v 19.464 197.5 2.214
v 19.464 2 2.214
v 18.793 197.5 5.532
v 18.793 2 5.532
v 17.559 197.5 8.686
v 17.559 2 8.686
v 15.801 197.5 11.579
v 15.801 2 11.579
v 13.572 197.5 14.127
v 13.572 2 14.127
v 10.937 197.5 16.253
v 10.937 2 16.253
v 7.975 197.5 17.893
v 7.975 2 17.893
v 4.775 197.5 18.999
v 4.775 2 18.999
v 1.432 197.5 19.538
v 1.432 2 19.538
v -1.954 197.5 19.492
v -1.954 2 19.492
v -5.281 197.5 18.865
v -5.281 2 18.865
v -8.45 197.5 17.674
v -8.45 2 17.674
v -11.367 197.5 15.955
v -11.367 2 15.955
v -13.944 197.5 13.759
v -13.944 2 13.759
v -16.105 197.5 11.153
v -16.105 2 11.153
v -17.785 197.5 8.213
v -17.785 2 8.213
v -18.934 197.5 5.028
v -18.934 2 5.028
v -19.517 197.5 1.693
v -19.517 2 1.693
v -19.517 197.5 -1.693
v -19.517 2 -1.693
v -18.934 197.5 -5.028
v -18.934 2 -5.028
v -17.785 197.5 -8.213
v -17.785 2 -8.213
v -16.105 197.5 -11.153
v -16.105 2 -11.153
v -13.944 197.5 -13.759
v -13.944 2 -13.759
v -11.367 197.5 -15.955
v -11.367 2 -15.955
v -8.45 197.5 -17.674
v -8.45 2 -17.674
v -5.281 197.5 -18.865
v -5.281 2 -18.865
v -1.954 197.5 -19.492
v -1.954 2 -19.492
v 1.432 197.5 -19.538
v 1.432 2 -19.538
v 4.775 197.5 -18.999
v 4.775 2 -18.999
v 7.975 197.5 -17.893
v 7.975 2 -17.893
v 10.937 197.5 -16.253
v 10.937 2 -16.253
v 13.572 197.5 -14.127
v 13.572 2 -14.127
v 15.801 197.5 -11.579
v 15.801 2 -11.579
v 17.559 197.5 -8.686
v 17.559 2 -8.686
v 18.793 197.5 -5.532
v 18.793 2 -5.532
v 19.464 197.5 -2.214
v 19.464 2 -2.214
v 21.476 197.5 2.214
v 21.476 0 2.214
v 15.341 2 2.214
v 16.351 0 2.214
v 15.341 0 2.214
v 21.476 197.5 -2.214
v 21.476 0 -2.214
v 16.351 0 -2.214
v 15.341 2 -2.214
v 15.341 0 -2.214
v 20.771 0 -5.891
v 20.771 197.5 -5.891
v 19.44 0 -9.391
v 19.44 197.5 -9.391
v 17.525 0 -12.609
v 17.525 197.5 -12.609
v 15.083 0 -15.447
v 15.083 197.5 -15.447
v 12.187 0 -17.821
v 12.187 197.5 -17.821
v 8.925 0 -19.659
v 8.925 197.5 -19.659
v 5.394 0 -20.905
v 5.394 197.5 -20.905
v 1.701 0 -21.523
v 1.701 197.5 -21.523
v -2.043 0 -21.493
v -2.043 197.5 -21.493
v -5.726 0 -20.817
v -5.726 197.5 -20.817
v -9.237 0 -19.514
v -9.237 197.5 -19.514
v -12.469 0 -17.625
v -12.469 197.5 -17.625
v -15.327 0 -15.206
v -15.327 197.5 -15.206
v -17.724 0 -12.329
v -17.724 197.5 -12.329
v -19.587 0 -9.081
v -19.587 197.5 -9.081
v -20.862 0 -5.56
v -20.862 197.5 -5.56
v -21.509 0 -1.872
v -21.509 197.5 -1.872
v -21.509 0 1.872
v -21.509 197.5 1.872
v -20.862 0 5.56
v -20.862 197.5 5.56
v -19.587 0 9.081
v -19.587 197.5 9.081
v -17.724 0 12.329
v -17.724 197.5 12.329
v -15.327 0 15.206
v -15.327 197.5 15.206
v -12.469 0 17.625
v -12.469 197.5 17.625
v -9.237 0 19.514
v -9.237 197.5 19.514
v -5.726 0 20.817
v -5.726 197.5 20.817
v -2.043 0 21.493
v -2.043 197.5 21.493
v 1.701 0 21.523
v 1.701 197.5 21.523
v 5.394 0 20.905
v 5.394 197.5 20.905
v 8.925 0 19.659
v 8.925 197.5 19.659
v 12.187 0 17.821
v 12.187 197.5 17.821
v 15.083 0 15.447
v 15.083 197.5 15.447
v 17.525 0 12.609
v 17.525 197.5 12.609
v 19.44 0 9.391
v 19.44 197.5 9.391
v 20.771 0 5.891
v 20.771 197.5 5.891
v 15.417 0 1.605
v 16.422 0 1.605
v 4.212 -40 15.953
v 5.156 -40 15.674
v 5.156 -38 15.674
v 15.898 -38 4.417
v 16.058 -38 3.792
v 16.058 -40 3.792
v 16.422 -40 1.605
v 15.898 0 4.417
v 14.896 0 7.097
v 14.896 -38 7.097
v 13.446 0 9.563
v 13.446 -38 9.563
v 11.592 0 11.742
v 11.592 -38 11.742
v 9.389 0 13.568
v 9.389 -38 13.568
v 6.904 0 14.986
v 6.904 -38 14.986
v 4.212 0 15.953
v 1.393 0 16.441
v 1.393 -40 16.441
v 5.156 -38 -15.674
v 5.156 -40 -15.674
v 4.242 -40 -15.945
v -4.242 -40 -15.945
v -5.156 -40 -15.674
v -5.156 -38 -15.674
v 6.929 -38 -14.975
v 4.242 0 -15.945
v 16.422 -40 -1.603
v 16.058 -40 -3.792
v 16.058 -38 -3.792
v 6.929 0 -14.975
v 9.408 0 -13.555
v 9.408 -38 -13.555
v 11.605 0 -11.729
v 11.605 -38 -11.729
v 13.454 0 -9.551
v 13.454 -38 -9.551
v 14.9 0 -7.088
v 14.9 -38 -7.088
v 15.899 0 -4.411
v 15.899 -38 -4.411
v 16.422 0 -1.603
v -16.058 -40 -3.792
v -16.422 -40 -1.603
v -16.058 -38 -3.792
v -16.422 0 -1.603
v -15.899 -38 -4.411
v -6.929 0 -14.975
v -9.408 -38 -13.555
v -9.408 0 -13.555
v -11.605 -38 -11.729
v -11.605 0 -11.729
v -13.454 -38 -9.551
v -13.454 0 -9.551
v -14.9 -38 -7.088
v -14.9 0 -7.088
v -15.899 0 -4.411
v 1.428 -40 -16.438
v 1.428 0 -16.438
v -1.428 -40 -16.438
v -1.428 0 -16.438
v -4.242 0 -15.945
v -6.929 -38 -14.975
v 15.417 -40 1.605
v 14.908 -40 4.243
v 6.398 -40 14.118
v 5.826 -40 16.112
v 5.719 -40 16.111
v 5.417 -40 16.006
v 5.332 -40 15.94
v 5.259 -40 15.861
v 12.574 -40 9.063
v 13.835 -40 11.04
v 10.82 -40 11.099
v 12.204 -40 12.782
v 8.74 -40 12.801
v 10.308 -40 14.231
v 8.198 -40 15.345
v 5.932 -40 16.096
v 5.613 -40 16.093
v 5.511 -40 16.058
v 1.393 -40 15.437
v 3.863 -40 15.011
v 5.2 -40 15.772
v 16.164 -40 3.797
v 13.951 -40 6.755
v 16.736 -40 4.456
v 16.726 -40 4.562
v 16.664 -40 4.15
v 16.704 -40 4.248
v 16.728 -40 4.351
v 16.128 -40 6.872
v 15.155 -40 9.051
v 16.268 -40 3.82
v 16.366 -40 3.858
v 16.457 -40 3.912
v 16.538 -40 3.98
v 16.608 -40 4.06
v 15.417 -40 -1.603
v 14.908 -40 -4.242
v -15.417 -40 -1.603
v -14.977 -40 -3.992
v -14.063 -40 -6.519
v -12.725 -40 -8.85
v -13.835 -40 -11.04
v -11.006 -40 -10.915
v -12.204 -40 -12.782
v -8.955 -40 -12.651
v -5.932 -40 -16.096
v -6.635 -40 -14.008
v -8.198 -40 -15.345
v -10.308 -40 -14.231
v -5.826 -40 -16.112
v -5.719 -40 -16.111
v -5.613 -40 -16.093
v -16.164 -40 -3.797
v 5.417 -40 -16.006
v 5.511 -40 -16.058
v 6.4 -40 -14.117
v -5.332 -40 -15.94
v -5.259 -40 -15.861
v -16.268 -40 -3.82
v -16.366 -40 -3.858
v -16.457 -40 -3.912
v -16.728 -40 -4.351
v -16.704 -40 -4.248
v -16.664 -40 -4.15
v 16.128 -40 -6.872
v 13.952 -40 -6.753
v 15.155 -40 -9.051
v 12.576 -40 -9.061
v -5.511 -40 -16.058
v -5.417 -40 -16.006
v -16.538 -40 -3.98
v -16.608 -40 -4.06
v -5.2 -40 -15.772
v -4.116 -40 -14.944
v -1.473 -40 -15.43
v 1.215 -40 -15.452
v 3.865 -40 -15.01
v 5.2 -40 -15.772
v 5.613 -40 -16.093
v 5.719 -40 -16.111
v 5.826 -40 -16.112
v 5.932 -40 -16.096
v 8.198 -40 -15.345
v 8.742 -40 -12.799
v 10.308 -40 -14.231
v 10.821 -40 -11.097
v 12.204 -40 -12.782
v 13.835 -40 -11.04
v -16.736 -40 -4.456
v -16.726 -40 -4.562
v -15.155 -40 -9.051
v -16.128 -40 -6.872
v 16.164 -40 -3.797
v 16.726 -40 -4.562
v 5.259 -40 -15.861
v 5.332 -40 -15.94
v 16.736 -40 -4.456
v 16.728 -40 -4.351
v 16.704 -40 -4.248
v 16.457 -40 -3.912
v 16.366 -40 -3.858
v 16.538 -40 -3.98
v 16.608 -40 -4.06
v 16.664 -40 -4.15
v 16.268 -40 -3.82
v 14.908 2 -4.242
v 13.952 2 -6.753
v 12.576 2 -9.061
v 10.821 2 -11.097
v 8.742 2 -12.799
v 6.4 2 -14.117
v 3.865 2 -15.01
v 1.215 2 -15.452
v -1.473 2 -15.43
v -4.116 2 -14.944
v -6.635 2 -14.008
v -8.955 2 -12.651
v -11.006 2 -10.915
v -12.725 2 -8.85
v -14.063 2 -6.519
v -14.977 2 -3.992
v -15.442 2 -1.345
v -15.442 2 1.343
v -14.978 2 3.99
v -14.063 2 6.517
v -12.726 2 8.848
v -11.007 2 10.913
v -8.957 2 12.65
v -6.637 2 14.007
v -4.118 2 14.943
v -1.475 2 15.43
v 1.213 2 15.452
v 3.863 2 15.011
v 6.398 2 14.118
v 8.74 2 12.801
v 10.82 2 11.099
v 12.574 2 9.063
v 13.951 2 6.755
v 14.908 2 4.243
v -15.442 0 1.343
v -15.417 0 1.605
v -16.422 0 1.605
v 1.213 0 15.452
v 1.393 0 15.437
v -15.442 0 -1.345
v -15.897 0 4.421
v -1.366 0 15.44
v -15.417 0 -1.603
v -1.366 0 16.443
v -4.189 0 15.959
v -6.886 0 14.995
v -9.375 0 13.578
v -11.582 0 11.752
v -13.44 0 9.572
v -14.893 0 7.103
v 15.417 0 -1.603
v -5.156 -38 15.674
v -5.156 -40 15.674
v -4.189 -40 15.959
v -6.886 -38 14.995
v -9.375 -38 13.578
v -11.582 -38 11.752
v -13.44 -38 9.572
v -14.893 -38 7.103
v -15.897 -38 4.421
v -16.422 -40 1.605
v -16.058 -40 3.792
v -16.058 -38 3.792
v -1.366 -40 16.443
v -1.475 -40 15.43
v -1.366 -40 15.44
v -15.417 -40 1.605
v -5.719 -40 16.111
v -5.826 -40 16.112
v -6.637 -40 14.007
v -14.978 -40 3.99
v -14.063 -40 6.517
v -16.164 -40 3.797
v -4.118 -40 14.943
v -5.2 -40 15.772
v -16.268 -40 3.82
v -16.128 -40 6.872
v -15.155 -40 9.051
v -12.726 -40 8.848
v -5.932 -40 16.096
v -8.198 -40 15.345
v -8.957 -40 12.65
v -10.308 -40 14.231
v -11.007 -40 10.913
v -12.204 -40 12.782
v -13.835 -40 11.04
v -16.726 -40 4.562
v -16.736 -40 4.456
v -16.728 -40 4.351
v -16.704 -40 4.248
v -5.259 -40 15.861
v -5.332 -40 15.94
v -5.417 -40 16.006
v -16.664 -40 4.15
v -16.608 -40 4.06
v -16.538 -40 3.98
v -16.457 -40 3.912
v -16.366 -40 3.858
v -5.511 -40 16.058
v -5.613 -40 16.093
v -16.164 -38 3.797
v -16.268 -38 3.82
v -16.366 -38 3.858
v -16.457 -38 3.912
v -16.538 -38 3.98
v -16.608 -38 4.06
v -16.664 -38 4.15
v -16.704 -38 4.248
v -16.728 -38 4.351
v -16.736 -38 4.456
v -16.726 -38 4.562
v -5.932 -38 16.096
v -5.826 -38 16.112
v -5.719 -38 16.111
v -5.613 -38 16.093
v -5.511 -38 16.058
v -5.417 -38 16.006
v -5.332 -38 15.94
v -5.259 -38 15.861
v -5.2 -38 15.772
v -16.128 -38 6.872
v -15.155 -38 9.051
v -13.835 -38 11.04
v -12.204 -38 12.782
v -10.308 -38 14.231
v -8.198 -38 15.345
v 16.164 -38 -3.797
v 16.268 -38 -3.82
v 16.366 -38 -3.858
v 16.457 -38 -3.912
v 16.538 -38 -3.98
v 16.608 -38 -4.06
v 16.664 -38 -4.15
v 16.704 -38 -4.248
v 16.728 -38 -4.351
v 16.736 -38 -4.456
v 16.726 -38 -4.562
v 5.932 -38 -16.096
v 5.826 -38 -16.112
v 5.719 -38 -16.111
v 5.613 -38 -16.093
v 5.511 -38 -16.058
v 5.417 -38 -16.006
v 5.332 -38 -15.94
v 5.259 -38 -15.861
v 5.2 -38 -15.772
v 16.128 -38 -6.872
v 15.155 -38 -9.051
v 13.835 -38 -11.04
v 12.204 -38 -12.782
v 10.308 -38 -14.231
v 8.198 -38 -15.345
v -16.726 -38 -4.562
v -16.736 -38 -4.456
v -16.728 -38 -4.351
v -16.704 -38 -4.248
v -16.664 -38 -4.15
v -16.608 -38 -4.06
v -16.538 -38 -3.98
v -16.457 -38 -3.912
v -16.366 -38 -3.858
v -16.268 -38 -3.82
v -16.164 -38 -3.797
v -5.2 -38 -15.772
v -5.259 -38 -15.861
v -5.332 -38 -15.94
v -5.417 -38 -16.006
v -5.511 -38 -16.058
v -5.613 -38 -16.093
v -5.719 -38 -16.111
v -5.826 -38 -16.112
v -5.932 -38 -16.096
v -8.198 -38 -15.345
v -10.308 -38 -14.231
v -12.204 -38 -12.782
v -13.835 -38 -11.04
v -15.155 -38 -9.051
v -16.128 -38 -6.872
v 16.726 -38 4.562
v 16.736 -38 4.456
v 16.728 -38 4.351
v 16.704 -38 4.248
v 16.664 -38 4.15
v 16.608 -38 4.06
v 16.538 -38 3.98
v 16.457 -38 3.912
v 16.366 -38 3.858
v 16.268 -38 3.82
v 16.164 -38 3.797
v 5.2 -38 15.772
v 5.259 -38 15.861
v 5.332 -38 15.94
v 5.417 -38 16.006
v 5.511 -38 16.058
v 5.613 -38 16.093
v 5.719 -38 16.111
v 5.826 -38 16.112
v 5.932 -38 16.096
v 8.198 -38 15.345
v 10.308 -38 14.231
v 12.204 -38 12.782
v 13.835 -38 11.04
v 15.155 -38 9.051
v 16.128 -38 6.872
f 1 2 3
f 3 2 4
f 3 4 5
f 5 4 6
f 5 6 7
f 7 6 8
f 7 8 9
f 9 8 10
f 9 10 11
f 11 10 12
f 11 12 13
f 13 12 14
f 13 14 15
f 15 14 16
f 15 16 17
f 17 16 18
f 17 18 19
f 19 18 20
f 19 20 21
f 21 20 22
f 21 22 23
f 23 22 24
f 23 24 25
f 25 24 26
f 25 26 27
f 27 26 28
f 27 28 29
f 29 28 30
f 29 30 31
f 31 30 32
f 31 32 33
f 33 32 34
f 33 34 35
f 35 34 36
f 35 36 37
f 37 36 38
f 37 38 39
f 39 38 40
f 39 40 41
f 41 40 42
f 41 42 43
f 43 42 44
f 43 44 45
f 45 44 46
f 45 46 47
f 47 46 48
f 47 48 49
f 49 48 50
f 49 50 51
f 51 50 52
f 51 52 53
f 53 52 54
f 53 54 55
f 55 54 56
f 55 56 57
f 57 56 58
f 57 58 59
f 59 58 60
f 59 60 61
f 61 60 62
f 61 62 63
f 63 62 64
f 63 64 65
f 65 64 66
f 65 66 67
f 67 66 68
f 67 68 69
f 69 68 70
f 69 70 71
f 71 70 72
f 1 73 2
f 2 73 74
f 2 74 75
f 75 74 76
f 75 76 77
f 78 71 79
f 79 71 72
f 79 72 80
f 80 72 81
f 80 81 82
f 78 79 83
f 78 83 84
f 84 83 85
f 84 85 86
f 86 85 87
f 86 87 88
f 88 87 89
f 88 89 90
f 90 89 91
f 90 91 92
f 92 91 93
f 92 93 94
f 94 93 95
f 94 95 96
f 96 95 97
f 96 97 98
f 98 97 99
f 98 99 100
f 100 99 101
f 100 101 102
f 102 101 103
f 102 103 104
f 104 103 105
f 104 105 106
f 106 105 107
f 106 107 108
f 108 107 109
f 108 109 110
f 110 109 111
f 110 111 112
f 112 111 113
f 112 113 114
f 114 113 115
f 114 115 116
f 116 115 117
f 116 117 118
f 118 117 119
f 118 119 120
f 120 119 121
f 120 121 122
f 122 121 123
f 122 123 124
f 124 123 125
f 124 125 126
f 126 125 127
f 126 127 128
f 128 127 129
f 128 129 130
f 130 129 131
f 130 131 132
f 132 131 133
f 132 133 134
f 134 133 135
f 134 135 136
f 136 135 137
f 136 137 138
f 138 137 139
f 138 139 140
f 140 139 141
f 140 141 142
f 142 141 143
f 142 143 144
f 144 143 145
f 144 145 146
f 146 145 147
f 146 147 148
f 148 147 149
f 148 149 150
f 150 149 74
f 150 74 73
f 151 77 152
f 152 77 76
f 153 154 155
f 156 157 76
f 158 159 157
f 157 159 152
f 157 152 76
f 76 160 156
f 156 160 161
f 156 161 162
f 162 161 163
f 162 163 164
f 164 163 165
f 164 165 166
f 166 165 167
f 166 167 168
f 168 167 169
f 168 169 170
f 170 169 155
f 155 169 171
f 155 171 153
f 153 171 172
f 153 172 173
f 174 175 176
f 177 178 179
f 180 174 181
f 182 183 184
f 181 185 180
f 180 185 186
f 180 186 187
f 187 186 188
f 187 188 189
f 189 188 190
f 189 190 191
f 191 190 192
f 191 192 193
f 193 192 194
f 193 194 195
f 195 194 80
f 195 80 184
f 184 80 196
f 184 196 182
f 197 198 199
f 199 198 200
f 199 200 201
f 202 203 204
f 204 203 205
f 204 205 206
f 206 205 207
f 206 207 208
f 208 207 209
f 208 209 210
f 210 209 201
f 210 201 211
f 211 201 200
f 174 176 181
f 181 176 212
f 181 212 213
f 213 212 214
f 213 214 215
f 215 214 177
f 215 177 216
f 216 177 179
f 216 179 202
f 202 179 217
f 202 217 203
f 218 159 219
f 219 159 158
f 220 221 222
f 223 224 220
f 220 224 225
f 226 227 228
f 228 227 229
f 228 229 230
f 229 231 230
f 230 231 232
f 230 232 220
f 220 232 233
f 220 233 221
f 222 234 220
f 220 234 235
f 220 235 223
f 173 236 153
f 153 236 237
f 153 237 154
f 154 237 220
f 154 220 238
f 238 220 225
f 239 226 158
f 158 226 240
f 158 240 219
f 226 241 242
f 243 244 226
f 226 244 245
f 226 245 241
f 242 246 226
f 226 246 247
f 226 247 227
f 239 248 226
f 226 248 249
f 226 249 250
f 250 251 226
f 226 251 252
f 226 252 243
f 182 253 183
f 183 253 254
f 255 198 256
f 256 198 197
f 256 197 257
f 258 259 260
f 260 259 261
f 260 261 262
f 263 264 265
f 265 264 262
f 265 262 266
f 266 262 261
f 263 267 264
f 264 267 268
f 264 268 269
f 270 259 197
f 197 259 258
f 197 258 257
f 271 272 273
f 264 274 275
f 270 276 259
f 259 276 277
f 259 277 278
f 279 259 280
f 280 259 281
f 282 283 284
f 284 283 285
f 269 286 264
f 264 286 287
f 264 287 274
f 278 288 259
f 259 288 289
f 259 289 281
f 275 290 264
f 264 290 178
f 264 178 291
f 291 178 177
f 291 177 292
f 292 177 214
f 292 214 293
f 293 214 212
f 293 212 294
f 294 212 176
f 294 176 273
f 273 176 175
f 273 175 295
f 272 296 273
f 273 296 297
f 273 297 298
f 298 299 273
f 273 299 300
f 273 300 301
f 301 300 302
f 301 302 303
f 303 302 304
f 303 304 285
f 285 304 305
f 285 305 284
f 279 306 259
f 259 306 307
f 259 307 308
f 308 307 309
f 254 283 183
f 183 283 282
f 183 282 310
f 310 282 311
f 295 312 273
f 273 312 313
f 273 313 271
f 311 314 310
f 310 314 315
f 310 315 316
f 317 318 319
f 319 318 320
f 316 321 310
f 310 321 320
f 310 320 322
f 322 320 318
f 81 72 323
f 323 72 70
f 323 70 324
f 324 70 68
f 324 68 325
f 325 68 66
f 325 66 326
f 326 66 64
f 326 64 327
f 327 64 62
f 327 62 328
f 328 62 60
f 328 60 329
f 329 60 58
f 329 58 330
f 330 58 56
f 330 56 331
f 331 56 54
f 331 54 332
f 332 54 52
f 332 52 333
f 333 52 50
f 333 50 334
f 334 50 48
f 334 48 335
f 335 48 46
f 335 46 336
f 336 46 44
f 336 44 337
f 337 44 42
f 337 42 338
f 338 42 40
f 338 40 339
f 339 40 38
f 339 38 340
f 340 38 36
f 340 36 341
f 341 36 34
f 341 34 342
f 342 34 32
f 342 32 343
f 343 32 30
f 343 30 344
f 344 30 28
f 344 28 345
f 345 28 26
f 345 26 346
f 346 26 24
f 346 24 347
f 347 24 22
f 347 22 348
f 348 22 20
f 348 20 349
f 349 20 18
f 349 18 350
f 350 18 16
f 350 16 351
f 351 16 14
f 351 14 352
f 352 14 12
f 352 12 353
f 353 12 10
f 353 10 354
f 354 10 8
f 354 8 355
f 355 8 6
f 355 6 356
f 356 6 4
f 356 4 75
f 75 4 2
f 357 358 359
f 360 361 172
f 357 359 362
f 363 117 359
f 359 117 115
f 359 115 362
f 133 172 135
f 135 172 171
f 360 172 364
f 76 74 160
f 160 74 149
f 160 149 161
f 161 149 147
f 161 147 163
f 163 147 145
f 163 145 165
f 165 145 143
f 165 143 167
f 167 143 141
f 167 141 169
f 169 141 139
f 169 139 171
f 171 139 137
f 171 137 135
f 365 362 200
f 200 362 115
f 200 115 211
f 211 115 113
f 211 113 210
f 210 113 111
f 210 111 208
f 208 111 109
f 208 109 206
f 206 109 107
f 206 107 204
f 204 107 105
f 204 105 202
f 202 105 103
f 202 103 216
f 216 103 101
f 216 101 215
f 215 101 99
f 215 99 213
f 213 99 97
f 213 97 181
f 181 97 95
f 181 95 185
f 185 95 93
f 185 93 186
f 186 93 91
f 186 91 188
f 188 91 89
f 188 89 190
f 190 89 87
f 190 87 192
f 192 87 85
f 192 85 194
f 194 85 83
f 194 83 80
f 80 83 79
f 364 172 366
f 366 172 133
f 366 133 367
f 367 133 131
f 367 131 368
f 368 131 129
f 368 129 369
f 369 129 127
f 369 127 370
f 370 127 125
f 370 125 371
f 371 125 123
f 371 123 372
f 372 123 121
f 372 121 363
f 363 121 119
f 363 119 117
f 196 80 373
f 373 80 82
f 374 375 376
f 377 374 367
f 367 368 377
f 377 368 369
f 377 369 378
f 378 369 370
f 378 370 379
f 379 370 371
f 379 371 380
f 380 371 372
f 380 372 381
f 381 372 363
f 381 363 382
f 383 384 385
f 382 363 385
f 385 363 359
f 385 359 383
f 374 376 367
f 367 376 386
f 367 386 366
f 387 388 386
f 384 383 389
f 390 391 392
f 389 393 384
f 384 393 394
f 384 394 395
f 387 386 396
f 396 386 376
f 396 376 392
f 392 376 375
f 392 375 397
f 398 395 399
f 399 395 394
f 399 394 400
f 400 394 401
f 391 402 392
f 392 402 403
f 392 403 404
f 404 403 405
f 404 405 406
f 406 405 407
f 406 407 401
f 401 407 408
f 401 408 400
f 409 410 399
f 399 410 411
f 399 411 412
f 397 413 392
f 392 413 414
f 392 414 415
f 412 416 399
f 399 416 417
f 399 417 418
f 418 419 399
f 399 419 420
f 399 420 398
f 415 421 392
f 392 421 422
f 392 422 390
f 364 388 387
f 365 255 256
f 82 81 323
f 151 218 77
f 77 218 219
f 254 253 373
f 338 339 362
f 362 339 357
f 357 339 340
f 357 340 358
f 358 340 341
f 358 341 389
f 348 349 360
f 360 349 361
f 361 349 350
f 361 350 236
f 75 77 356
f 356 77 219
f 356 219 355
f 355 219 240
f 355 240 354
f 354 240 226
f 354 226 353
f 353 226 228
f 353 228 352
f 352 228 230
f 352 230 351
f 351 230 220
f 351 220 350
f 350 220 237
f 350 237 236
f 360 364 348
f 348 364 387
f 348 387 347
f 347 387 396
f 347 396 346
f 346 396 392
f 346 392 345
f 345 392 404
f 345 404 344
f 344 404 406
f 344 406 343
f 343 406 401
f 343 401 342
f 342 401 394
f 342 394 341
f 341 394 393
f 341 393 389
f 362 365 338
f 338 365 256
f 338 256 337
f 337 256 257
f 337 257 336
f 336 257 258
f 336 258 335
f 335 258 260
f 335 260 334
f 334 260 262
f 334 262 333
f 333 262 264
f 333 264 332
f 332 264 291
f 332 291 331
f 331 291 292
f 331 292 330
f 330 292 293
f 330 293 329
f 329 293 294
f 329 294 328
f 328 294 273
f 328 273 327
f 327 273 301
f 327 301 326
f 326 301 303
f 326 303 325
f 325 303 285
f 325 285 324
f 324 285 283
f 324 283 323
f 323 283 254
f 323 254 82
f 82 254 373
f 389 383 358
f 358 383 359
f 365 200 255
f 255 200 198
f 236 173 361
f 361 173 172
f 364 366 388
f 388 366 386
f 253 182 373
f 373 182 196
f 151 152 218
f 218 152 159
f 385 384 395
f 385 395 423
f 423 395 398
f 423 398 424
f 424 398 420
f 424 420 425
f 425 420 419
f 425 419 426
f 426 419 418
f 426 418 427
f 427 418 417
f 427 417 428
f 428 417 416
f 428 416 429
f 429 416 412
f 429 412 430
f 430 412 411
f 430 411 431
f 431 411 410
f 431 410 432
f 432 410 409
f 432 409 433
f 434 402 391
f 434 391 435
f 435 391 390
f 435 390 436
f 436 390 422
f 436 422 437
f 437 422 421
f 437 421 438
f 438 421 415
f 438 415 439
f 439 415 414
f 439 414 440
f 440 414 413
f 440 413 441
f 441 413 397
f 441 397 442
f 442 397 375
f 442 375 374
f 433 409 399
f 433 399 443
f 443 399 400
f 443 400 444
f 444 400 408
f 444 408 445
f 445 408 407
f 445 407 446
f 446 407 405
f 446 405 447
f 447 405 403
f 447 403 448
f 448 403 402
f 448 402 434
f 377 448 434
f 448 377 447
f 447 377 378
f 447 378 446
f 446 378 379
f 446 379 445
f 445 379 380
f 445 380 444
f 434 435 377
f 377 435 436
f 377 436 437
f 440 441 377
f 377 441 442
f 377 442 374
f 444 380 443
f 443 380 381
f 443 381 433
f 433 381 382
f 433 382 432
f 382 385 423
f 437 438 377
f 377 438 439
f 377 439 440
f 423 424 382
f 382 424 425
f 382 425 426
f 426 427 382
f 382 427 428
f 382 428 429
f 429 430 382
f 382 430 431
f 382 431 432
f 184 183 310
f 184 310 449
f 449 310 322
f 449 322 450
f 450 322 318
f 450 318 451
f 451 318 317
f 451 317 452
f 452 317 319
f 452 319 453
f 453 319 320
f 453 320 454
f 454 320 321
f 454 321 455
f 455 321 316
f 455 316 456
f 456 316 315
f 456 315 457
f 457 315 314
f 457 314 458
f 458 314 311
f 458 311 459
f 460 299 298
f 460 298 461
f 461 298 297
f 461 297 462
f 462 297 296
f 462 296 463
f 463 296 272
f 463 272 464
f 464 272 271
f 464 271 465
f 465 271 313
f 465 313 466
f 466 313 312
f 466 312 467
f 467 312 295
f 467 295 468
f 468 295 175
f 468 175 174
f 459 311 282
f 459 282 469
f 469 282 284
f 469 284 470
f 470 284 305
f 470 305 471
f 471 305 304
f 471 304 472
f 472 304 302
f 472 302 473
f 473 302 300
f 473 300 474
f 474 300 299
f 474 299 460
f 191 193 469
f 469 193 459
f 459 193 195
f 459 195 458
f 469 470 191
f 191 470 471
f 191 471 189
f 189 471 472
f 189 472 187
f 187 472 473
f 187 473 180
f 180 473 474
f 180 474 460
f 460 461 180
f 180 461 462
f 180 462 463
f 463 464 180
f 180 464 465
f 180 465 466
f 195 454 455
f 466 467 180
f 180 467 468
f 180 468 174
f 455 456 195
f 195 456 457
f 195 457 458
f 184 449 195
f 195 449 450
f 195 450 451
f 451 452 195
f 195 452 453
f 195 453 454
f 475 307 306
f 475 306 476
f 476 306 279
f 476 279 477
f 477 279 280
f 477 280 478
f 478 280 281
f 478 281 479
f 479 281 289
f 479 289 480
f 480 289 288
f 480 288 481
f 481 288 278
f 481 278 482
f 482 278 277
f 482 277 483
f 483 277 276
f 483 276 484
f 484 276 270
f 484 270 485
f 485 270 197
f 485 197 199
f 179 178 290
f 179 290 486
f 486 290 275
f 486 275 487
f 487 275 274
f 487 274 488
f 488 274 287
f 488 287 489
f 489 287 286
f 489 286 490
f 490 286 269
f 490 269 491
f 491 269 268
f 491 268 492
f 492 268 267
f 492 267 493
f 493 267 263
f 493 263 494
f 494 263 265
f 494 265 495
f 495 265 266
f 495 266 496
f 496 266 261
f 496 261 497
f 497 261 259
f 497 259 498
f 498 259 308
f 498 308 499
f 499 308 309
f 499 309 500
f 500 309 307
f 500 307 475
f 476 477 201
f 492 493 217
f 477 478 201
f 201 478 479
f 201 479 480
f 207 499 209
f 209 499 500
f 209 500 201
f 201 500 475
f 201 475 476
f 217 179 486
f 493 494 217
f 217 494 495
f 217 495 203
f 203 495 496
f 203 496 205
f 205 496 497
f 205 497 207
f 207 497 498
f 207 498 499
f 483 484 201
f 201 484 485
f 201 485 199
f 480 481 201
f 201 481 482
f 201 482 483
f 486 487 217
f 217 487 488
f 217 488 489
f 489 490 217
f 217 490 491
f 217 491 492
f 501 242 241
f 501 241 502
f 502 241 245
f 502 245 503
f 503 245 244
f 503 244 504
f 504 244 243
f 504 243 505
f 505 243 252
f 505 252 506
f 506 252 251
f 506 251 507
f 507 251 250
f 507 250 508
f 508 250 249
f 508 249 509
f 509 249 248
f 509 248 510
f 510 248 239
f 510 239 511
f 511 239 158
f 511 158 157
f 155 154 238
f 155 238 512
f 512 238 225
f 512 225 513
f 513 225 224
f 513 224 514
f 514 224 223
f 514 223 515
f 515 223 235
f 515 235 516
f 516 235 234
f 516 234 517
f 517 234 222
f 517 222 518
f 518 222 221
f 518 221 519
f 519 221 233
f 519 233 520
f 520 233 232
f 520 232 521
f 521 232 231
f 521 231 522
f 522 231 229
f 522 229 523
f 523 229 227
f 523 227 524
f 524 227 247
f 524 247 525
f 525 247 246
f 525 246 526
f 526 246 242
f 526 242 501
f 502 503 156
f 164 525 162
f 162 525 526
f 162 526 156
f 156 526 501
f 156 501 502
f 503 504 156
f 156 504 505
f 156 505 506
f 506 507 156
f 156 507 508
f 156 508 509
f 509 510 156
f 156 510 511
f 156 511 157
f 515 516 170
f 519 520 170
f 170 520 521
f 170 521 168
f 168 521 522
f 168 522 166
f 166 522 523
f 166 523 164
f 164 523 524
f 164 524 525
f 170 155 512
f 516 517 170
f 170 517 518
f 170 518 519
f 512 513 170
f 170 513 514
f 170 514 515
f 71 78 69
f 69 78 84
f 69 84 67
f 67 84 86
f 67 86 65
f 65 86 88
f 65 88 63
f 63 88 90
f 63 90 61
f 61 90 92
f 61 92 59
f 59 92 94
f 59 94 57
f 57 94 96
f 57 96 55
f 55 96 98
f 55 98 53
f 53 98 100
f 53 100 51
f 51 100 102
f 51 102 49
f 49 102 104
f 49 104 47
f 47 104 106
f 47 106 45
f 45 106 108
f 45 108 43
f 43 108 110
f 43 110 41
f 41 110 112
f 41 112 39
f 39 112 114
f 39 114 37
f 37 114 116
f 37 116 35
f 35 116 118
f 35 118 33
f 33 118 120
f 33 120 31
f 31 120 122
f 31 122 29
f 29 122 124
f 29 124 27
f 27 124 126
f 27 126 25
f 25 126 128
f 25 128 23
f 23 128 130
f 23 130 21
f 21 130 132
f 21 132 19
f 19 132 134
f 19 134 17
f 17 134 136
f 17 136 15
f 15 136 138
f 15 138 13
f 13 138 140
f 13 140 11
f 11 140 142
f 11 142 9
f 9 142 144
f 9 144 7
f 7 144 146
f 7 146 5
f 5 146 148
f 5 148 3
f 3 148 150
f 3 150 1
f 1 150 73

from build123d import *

# Parameters (mm, degrees)
SKETCH1_R           = 21.59
BOSS_EXTRUDE1_DEPTH = 200
SHELL1_T            = 2
CUT_EXTRUDE1_START  = 20
CUT_EXTRUDE1_DEPTH  = 5
SKETCH4_R           = 16.5
BOSS_EXTRUDE2_DEPTH = 40
SKETCH7_R           = 15.5
CUT_EXTRUDE4_DEPTH  = 62
SKETCH8_W           = 2.785852998
SKETCH8_H           = 5.87658936
SKETCH8_W_2         = 8.878050256
SKETCH8_H_2         = 3.207420782
SKETCH8_W_3         = 2.758641046
SKETCH8_H_3         = 8.505589864
CUT_EXTRUDE5_DEPTH  = 203.317216766
BOSS_EXTRUDE4_DEPTH = 2
SKETCH10_R          = 21.59
CUT_EXTRUDE7_DEPTH  = 2.5


with BuildPart() as part:
    # Sketch1 → Boss-Extrude1 (new body)
    with BuildSketch(Plane(origin=(0, 0, 0), x_dir=(1, 0, 0), z_dir=(0, 1, 0))):
        with Locations(Location((0, 0, 0), (0, 0, 270))):
            Circle(SKETCH1_R)
    extrude(amount=BOSS_EXTRUDE1_DEPTH)

    # Shell1 (no face opened: a closed hollow body)
    add(offset(amount=-SHELL1_T, mode=Mode.PRIVATE), mode=Mode.SUBTRACT)

    # Sketch2 → Cut-Extrude1 (cut, symmetric)
    with BuildSketch(Plane(origin=(0, 0, 0), x_dir=(0, 0, -1), z_dir=(1, 0, 0)).offset(CUT_EXTRUDE1_START)):
        Polygon((2.213988381, 104.269834735), (2.213988381, 0), (-2.213988381, 0), (-2.213988381, 104.269834735), (-2.213988381, 199.79439609), (2.213988381, 199.79439609), align=None)
    extrude(amount=CUT_EXTRUDE1_DEPTH, both=True, mode=Mode.SUBTRACT)

    # Sketch4 → Boss-Extrude2 (add)
    with BuildSketch(Plane.XZ):
        with Locations(Location((0, 0, 0), (0, 0, 7.711270357))):
            Circle(SKETCH4_R)
    extrude(amount=BOSS_EXTRUDE2_DEPTH)

    # Sketch7 → Cut-Extrude4 (cut)
    with BuildSketch(Plane(origin=(0, -40, 0), x_dir=(-1, 0, 0), z_dir=(0, -1, 0))):
        with Locations(Location((0, 0, 0), (0, 0, 90))):
            Circle(SKETCH7_R)
    extrude(amount=-CUT_EXTRUDE4_DEPTH, mode=Mode.SUBTRACT)

    # Sketch8 → Cut-Extrude5 (cut, through all)
    with BuildSketch(Plane(origin=(0, 0, 0), x_dir=(1, 0, 0), z_dir=(0, 1, 0))):
        with Locations((0, 20.108138302)):
            Rectangle(SKETCH8_W, SKETCH8_H)
        with Locations((18.709836445, -0.001004202)):
            Rectangle(SKETCH8_W_2, SKETCH8_H_2)
        with Locations((0.013605976, -18.452209414)):
            Rectangle(SKETCH8_W_3, SKETCH8_H_3)
        with Locations((-18.709836445, -0.001004202)):
            Rectangle(SKETCH8_W_2, SKETCH8_H_2)
    extrude(amount=-CUT_EXTRUDE5_DEPTH, mode=Mode.SUBTRACT)

    # Sketch9 → Boss-Extrude4 (add)
    with BuildSketch(Plane.XZ.offset(40)):
        with BuildLine():
            ThreePointArc((16.726333299, 4.561841417), (13.056013579, 11.944688127), (5.932226465, 16.095510881))
            ThreePointArc((5.932226465, 16.095510881), (5.137631387, 15.609709062), (5.623433206, 14.815113985))
            ThreePointArc((5.623433206, 14.815113985), (12.094357446, 11.044695365), (15.428308962, 4.338453169))
            ThreePointArc((15.428308962, 4.338453169), (16.189015254, 3.801135125), (16.726333299, 4.561841417))
        make_face()
        with BuildLine():
            ThreePointArc((16.726333299, -4.561841417), (13.056013579, -11.944688127), (5.932226465, -16.095510881))
            ThreePointArc((5.932226465, -16.095510881), (5.137631387, -15.609709062), (5.623433206, -14.815113985))
            ThreePointArc((5.623433206, -14.815113985), (12.094357446, -11.044695365), (15.428308962, -4.338453169))
            ThreePointArc((15.428308962, -4.338453169), (16.189015254, -3.801135125), (16.726333299, -4.561841417))
        make_face()
        with BuildLine():
            ThreePointArc((-16.726333299, -4.561841417), (-13.056013579, -11.944688127), (-5.932226465, -16.095510881))
            ThreePointArc((-5.932226465, -16.095510881), (-5.137631387, -15.609709062), (-5.623433206, -14.815113985))
            ThreePointArc((-5.623433206, -14.815113985), (-12.094357446, -11.044695365), (-15.428308962, -4.338453169))
            ThreePointArc((-15.428308962, -4.338453169), (-16.189015254, -3.801135125), (-16.726333299, -4.561841417))
        make_face()
        with BuildLine():
            ThreePointArc((-16.726333299, 4.561841417), (-13.056013579, 11.944688127), (-5.932226465, 16.095510881))
            ThreePointArc((-5.932226465, 16.095510881), (-5.137631387, 15.609709062), (-5.623433206, 14.815113985))
            ThreePointArc((-5.623433206, 14.815113985), (-12.094357446, 11.044695365), (-15.428308962, 4.338453169))
            ThreePointArc((-15.428308962, 4.338453169), (-16.189015254, 3.801135125), (-16.726333299, 4.561841417))
        make_face()
    extrude(amount=-BOSS_EXTRUDE4_DEPTH)

    # Sketch10 → Cut-Extrude7 (cut, symmetric)
    with BuildSketch(Plane(origin=(0, 200, 0), x_dir=(1, 0, 0), z_dir=(0, 1, 0))):
        Circle(SKETCH10_R)
    extrude(amount=CUT_EXTRUDE7_DEPTH, both=True, mode=Mode.SUBTRACT)


solid = part.part
